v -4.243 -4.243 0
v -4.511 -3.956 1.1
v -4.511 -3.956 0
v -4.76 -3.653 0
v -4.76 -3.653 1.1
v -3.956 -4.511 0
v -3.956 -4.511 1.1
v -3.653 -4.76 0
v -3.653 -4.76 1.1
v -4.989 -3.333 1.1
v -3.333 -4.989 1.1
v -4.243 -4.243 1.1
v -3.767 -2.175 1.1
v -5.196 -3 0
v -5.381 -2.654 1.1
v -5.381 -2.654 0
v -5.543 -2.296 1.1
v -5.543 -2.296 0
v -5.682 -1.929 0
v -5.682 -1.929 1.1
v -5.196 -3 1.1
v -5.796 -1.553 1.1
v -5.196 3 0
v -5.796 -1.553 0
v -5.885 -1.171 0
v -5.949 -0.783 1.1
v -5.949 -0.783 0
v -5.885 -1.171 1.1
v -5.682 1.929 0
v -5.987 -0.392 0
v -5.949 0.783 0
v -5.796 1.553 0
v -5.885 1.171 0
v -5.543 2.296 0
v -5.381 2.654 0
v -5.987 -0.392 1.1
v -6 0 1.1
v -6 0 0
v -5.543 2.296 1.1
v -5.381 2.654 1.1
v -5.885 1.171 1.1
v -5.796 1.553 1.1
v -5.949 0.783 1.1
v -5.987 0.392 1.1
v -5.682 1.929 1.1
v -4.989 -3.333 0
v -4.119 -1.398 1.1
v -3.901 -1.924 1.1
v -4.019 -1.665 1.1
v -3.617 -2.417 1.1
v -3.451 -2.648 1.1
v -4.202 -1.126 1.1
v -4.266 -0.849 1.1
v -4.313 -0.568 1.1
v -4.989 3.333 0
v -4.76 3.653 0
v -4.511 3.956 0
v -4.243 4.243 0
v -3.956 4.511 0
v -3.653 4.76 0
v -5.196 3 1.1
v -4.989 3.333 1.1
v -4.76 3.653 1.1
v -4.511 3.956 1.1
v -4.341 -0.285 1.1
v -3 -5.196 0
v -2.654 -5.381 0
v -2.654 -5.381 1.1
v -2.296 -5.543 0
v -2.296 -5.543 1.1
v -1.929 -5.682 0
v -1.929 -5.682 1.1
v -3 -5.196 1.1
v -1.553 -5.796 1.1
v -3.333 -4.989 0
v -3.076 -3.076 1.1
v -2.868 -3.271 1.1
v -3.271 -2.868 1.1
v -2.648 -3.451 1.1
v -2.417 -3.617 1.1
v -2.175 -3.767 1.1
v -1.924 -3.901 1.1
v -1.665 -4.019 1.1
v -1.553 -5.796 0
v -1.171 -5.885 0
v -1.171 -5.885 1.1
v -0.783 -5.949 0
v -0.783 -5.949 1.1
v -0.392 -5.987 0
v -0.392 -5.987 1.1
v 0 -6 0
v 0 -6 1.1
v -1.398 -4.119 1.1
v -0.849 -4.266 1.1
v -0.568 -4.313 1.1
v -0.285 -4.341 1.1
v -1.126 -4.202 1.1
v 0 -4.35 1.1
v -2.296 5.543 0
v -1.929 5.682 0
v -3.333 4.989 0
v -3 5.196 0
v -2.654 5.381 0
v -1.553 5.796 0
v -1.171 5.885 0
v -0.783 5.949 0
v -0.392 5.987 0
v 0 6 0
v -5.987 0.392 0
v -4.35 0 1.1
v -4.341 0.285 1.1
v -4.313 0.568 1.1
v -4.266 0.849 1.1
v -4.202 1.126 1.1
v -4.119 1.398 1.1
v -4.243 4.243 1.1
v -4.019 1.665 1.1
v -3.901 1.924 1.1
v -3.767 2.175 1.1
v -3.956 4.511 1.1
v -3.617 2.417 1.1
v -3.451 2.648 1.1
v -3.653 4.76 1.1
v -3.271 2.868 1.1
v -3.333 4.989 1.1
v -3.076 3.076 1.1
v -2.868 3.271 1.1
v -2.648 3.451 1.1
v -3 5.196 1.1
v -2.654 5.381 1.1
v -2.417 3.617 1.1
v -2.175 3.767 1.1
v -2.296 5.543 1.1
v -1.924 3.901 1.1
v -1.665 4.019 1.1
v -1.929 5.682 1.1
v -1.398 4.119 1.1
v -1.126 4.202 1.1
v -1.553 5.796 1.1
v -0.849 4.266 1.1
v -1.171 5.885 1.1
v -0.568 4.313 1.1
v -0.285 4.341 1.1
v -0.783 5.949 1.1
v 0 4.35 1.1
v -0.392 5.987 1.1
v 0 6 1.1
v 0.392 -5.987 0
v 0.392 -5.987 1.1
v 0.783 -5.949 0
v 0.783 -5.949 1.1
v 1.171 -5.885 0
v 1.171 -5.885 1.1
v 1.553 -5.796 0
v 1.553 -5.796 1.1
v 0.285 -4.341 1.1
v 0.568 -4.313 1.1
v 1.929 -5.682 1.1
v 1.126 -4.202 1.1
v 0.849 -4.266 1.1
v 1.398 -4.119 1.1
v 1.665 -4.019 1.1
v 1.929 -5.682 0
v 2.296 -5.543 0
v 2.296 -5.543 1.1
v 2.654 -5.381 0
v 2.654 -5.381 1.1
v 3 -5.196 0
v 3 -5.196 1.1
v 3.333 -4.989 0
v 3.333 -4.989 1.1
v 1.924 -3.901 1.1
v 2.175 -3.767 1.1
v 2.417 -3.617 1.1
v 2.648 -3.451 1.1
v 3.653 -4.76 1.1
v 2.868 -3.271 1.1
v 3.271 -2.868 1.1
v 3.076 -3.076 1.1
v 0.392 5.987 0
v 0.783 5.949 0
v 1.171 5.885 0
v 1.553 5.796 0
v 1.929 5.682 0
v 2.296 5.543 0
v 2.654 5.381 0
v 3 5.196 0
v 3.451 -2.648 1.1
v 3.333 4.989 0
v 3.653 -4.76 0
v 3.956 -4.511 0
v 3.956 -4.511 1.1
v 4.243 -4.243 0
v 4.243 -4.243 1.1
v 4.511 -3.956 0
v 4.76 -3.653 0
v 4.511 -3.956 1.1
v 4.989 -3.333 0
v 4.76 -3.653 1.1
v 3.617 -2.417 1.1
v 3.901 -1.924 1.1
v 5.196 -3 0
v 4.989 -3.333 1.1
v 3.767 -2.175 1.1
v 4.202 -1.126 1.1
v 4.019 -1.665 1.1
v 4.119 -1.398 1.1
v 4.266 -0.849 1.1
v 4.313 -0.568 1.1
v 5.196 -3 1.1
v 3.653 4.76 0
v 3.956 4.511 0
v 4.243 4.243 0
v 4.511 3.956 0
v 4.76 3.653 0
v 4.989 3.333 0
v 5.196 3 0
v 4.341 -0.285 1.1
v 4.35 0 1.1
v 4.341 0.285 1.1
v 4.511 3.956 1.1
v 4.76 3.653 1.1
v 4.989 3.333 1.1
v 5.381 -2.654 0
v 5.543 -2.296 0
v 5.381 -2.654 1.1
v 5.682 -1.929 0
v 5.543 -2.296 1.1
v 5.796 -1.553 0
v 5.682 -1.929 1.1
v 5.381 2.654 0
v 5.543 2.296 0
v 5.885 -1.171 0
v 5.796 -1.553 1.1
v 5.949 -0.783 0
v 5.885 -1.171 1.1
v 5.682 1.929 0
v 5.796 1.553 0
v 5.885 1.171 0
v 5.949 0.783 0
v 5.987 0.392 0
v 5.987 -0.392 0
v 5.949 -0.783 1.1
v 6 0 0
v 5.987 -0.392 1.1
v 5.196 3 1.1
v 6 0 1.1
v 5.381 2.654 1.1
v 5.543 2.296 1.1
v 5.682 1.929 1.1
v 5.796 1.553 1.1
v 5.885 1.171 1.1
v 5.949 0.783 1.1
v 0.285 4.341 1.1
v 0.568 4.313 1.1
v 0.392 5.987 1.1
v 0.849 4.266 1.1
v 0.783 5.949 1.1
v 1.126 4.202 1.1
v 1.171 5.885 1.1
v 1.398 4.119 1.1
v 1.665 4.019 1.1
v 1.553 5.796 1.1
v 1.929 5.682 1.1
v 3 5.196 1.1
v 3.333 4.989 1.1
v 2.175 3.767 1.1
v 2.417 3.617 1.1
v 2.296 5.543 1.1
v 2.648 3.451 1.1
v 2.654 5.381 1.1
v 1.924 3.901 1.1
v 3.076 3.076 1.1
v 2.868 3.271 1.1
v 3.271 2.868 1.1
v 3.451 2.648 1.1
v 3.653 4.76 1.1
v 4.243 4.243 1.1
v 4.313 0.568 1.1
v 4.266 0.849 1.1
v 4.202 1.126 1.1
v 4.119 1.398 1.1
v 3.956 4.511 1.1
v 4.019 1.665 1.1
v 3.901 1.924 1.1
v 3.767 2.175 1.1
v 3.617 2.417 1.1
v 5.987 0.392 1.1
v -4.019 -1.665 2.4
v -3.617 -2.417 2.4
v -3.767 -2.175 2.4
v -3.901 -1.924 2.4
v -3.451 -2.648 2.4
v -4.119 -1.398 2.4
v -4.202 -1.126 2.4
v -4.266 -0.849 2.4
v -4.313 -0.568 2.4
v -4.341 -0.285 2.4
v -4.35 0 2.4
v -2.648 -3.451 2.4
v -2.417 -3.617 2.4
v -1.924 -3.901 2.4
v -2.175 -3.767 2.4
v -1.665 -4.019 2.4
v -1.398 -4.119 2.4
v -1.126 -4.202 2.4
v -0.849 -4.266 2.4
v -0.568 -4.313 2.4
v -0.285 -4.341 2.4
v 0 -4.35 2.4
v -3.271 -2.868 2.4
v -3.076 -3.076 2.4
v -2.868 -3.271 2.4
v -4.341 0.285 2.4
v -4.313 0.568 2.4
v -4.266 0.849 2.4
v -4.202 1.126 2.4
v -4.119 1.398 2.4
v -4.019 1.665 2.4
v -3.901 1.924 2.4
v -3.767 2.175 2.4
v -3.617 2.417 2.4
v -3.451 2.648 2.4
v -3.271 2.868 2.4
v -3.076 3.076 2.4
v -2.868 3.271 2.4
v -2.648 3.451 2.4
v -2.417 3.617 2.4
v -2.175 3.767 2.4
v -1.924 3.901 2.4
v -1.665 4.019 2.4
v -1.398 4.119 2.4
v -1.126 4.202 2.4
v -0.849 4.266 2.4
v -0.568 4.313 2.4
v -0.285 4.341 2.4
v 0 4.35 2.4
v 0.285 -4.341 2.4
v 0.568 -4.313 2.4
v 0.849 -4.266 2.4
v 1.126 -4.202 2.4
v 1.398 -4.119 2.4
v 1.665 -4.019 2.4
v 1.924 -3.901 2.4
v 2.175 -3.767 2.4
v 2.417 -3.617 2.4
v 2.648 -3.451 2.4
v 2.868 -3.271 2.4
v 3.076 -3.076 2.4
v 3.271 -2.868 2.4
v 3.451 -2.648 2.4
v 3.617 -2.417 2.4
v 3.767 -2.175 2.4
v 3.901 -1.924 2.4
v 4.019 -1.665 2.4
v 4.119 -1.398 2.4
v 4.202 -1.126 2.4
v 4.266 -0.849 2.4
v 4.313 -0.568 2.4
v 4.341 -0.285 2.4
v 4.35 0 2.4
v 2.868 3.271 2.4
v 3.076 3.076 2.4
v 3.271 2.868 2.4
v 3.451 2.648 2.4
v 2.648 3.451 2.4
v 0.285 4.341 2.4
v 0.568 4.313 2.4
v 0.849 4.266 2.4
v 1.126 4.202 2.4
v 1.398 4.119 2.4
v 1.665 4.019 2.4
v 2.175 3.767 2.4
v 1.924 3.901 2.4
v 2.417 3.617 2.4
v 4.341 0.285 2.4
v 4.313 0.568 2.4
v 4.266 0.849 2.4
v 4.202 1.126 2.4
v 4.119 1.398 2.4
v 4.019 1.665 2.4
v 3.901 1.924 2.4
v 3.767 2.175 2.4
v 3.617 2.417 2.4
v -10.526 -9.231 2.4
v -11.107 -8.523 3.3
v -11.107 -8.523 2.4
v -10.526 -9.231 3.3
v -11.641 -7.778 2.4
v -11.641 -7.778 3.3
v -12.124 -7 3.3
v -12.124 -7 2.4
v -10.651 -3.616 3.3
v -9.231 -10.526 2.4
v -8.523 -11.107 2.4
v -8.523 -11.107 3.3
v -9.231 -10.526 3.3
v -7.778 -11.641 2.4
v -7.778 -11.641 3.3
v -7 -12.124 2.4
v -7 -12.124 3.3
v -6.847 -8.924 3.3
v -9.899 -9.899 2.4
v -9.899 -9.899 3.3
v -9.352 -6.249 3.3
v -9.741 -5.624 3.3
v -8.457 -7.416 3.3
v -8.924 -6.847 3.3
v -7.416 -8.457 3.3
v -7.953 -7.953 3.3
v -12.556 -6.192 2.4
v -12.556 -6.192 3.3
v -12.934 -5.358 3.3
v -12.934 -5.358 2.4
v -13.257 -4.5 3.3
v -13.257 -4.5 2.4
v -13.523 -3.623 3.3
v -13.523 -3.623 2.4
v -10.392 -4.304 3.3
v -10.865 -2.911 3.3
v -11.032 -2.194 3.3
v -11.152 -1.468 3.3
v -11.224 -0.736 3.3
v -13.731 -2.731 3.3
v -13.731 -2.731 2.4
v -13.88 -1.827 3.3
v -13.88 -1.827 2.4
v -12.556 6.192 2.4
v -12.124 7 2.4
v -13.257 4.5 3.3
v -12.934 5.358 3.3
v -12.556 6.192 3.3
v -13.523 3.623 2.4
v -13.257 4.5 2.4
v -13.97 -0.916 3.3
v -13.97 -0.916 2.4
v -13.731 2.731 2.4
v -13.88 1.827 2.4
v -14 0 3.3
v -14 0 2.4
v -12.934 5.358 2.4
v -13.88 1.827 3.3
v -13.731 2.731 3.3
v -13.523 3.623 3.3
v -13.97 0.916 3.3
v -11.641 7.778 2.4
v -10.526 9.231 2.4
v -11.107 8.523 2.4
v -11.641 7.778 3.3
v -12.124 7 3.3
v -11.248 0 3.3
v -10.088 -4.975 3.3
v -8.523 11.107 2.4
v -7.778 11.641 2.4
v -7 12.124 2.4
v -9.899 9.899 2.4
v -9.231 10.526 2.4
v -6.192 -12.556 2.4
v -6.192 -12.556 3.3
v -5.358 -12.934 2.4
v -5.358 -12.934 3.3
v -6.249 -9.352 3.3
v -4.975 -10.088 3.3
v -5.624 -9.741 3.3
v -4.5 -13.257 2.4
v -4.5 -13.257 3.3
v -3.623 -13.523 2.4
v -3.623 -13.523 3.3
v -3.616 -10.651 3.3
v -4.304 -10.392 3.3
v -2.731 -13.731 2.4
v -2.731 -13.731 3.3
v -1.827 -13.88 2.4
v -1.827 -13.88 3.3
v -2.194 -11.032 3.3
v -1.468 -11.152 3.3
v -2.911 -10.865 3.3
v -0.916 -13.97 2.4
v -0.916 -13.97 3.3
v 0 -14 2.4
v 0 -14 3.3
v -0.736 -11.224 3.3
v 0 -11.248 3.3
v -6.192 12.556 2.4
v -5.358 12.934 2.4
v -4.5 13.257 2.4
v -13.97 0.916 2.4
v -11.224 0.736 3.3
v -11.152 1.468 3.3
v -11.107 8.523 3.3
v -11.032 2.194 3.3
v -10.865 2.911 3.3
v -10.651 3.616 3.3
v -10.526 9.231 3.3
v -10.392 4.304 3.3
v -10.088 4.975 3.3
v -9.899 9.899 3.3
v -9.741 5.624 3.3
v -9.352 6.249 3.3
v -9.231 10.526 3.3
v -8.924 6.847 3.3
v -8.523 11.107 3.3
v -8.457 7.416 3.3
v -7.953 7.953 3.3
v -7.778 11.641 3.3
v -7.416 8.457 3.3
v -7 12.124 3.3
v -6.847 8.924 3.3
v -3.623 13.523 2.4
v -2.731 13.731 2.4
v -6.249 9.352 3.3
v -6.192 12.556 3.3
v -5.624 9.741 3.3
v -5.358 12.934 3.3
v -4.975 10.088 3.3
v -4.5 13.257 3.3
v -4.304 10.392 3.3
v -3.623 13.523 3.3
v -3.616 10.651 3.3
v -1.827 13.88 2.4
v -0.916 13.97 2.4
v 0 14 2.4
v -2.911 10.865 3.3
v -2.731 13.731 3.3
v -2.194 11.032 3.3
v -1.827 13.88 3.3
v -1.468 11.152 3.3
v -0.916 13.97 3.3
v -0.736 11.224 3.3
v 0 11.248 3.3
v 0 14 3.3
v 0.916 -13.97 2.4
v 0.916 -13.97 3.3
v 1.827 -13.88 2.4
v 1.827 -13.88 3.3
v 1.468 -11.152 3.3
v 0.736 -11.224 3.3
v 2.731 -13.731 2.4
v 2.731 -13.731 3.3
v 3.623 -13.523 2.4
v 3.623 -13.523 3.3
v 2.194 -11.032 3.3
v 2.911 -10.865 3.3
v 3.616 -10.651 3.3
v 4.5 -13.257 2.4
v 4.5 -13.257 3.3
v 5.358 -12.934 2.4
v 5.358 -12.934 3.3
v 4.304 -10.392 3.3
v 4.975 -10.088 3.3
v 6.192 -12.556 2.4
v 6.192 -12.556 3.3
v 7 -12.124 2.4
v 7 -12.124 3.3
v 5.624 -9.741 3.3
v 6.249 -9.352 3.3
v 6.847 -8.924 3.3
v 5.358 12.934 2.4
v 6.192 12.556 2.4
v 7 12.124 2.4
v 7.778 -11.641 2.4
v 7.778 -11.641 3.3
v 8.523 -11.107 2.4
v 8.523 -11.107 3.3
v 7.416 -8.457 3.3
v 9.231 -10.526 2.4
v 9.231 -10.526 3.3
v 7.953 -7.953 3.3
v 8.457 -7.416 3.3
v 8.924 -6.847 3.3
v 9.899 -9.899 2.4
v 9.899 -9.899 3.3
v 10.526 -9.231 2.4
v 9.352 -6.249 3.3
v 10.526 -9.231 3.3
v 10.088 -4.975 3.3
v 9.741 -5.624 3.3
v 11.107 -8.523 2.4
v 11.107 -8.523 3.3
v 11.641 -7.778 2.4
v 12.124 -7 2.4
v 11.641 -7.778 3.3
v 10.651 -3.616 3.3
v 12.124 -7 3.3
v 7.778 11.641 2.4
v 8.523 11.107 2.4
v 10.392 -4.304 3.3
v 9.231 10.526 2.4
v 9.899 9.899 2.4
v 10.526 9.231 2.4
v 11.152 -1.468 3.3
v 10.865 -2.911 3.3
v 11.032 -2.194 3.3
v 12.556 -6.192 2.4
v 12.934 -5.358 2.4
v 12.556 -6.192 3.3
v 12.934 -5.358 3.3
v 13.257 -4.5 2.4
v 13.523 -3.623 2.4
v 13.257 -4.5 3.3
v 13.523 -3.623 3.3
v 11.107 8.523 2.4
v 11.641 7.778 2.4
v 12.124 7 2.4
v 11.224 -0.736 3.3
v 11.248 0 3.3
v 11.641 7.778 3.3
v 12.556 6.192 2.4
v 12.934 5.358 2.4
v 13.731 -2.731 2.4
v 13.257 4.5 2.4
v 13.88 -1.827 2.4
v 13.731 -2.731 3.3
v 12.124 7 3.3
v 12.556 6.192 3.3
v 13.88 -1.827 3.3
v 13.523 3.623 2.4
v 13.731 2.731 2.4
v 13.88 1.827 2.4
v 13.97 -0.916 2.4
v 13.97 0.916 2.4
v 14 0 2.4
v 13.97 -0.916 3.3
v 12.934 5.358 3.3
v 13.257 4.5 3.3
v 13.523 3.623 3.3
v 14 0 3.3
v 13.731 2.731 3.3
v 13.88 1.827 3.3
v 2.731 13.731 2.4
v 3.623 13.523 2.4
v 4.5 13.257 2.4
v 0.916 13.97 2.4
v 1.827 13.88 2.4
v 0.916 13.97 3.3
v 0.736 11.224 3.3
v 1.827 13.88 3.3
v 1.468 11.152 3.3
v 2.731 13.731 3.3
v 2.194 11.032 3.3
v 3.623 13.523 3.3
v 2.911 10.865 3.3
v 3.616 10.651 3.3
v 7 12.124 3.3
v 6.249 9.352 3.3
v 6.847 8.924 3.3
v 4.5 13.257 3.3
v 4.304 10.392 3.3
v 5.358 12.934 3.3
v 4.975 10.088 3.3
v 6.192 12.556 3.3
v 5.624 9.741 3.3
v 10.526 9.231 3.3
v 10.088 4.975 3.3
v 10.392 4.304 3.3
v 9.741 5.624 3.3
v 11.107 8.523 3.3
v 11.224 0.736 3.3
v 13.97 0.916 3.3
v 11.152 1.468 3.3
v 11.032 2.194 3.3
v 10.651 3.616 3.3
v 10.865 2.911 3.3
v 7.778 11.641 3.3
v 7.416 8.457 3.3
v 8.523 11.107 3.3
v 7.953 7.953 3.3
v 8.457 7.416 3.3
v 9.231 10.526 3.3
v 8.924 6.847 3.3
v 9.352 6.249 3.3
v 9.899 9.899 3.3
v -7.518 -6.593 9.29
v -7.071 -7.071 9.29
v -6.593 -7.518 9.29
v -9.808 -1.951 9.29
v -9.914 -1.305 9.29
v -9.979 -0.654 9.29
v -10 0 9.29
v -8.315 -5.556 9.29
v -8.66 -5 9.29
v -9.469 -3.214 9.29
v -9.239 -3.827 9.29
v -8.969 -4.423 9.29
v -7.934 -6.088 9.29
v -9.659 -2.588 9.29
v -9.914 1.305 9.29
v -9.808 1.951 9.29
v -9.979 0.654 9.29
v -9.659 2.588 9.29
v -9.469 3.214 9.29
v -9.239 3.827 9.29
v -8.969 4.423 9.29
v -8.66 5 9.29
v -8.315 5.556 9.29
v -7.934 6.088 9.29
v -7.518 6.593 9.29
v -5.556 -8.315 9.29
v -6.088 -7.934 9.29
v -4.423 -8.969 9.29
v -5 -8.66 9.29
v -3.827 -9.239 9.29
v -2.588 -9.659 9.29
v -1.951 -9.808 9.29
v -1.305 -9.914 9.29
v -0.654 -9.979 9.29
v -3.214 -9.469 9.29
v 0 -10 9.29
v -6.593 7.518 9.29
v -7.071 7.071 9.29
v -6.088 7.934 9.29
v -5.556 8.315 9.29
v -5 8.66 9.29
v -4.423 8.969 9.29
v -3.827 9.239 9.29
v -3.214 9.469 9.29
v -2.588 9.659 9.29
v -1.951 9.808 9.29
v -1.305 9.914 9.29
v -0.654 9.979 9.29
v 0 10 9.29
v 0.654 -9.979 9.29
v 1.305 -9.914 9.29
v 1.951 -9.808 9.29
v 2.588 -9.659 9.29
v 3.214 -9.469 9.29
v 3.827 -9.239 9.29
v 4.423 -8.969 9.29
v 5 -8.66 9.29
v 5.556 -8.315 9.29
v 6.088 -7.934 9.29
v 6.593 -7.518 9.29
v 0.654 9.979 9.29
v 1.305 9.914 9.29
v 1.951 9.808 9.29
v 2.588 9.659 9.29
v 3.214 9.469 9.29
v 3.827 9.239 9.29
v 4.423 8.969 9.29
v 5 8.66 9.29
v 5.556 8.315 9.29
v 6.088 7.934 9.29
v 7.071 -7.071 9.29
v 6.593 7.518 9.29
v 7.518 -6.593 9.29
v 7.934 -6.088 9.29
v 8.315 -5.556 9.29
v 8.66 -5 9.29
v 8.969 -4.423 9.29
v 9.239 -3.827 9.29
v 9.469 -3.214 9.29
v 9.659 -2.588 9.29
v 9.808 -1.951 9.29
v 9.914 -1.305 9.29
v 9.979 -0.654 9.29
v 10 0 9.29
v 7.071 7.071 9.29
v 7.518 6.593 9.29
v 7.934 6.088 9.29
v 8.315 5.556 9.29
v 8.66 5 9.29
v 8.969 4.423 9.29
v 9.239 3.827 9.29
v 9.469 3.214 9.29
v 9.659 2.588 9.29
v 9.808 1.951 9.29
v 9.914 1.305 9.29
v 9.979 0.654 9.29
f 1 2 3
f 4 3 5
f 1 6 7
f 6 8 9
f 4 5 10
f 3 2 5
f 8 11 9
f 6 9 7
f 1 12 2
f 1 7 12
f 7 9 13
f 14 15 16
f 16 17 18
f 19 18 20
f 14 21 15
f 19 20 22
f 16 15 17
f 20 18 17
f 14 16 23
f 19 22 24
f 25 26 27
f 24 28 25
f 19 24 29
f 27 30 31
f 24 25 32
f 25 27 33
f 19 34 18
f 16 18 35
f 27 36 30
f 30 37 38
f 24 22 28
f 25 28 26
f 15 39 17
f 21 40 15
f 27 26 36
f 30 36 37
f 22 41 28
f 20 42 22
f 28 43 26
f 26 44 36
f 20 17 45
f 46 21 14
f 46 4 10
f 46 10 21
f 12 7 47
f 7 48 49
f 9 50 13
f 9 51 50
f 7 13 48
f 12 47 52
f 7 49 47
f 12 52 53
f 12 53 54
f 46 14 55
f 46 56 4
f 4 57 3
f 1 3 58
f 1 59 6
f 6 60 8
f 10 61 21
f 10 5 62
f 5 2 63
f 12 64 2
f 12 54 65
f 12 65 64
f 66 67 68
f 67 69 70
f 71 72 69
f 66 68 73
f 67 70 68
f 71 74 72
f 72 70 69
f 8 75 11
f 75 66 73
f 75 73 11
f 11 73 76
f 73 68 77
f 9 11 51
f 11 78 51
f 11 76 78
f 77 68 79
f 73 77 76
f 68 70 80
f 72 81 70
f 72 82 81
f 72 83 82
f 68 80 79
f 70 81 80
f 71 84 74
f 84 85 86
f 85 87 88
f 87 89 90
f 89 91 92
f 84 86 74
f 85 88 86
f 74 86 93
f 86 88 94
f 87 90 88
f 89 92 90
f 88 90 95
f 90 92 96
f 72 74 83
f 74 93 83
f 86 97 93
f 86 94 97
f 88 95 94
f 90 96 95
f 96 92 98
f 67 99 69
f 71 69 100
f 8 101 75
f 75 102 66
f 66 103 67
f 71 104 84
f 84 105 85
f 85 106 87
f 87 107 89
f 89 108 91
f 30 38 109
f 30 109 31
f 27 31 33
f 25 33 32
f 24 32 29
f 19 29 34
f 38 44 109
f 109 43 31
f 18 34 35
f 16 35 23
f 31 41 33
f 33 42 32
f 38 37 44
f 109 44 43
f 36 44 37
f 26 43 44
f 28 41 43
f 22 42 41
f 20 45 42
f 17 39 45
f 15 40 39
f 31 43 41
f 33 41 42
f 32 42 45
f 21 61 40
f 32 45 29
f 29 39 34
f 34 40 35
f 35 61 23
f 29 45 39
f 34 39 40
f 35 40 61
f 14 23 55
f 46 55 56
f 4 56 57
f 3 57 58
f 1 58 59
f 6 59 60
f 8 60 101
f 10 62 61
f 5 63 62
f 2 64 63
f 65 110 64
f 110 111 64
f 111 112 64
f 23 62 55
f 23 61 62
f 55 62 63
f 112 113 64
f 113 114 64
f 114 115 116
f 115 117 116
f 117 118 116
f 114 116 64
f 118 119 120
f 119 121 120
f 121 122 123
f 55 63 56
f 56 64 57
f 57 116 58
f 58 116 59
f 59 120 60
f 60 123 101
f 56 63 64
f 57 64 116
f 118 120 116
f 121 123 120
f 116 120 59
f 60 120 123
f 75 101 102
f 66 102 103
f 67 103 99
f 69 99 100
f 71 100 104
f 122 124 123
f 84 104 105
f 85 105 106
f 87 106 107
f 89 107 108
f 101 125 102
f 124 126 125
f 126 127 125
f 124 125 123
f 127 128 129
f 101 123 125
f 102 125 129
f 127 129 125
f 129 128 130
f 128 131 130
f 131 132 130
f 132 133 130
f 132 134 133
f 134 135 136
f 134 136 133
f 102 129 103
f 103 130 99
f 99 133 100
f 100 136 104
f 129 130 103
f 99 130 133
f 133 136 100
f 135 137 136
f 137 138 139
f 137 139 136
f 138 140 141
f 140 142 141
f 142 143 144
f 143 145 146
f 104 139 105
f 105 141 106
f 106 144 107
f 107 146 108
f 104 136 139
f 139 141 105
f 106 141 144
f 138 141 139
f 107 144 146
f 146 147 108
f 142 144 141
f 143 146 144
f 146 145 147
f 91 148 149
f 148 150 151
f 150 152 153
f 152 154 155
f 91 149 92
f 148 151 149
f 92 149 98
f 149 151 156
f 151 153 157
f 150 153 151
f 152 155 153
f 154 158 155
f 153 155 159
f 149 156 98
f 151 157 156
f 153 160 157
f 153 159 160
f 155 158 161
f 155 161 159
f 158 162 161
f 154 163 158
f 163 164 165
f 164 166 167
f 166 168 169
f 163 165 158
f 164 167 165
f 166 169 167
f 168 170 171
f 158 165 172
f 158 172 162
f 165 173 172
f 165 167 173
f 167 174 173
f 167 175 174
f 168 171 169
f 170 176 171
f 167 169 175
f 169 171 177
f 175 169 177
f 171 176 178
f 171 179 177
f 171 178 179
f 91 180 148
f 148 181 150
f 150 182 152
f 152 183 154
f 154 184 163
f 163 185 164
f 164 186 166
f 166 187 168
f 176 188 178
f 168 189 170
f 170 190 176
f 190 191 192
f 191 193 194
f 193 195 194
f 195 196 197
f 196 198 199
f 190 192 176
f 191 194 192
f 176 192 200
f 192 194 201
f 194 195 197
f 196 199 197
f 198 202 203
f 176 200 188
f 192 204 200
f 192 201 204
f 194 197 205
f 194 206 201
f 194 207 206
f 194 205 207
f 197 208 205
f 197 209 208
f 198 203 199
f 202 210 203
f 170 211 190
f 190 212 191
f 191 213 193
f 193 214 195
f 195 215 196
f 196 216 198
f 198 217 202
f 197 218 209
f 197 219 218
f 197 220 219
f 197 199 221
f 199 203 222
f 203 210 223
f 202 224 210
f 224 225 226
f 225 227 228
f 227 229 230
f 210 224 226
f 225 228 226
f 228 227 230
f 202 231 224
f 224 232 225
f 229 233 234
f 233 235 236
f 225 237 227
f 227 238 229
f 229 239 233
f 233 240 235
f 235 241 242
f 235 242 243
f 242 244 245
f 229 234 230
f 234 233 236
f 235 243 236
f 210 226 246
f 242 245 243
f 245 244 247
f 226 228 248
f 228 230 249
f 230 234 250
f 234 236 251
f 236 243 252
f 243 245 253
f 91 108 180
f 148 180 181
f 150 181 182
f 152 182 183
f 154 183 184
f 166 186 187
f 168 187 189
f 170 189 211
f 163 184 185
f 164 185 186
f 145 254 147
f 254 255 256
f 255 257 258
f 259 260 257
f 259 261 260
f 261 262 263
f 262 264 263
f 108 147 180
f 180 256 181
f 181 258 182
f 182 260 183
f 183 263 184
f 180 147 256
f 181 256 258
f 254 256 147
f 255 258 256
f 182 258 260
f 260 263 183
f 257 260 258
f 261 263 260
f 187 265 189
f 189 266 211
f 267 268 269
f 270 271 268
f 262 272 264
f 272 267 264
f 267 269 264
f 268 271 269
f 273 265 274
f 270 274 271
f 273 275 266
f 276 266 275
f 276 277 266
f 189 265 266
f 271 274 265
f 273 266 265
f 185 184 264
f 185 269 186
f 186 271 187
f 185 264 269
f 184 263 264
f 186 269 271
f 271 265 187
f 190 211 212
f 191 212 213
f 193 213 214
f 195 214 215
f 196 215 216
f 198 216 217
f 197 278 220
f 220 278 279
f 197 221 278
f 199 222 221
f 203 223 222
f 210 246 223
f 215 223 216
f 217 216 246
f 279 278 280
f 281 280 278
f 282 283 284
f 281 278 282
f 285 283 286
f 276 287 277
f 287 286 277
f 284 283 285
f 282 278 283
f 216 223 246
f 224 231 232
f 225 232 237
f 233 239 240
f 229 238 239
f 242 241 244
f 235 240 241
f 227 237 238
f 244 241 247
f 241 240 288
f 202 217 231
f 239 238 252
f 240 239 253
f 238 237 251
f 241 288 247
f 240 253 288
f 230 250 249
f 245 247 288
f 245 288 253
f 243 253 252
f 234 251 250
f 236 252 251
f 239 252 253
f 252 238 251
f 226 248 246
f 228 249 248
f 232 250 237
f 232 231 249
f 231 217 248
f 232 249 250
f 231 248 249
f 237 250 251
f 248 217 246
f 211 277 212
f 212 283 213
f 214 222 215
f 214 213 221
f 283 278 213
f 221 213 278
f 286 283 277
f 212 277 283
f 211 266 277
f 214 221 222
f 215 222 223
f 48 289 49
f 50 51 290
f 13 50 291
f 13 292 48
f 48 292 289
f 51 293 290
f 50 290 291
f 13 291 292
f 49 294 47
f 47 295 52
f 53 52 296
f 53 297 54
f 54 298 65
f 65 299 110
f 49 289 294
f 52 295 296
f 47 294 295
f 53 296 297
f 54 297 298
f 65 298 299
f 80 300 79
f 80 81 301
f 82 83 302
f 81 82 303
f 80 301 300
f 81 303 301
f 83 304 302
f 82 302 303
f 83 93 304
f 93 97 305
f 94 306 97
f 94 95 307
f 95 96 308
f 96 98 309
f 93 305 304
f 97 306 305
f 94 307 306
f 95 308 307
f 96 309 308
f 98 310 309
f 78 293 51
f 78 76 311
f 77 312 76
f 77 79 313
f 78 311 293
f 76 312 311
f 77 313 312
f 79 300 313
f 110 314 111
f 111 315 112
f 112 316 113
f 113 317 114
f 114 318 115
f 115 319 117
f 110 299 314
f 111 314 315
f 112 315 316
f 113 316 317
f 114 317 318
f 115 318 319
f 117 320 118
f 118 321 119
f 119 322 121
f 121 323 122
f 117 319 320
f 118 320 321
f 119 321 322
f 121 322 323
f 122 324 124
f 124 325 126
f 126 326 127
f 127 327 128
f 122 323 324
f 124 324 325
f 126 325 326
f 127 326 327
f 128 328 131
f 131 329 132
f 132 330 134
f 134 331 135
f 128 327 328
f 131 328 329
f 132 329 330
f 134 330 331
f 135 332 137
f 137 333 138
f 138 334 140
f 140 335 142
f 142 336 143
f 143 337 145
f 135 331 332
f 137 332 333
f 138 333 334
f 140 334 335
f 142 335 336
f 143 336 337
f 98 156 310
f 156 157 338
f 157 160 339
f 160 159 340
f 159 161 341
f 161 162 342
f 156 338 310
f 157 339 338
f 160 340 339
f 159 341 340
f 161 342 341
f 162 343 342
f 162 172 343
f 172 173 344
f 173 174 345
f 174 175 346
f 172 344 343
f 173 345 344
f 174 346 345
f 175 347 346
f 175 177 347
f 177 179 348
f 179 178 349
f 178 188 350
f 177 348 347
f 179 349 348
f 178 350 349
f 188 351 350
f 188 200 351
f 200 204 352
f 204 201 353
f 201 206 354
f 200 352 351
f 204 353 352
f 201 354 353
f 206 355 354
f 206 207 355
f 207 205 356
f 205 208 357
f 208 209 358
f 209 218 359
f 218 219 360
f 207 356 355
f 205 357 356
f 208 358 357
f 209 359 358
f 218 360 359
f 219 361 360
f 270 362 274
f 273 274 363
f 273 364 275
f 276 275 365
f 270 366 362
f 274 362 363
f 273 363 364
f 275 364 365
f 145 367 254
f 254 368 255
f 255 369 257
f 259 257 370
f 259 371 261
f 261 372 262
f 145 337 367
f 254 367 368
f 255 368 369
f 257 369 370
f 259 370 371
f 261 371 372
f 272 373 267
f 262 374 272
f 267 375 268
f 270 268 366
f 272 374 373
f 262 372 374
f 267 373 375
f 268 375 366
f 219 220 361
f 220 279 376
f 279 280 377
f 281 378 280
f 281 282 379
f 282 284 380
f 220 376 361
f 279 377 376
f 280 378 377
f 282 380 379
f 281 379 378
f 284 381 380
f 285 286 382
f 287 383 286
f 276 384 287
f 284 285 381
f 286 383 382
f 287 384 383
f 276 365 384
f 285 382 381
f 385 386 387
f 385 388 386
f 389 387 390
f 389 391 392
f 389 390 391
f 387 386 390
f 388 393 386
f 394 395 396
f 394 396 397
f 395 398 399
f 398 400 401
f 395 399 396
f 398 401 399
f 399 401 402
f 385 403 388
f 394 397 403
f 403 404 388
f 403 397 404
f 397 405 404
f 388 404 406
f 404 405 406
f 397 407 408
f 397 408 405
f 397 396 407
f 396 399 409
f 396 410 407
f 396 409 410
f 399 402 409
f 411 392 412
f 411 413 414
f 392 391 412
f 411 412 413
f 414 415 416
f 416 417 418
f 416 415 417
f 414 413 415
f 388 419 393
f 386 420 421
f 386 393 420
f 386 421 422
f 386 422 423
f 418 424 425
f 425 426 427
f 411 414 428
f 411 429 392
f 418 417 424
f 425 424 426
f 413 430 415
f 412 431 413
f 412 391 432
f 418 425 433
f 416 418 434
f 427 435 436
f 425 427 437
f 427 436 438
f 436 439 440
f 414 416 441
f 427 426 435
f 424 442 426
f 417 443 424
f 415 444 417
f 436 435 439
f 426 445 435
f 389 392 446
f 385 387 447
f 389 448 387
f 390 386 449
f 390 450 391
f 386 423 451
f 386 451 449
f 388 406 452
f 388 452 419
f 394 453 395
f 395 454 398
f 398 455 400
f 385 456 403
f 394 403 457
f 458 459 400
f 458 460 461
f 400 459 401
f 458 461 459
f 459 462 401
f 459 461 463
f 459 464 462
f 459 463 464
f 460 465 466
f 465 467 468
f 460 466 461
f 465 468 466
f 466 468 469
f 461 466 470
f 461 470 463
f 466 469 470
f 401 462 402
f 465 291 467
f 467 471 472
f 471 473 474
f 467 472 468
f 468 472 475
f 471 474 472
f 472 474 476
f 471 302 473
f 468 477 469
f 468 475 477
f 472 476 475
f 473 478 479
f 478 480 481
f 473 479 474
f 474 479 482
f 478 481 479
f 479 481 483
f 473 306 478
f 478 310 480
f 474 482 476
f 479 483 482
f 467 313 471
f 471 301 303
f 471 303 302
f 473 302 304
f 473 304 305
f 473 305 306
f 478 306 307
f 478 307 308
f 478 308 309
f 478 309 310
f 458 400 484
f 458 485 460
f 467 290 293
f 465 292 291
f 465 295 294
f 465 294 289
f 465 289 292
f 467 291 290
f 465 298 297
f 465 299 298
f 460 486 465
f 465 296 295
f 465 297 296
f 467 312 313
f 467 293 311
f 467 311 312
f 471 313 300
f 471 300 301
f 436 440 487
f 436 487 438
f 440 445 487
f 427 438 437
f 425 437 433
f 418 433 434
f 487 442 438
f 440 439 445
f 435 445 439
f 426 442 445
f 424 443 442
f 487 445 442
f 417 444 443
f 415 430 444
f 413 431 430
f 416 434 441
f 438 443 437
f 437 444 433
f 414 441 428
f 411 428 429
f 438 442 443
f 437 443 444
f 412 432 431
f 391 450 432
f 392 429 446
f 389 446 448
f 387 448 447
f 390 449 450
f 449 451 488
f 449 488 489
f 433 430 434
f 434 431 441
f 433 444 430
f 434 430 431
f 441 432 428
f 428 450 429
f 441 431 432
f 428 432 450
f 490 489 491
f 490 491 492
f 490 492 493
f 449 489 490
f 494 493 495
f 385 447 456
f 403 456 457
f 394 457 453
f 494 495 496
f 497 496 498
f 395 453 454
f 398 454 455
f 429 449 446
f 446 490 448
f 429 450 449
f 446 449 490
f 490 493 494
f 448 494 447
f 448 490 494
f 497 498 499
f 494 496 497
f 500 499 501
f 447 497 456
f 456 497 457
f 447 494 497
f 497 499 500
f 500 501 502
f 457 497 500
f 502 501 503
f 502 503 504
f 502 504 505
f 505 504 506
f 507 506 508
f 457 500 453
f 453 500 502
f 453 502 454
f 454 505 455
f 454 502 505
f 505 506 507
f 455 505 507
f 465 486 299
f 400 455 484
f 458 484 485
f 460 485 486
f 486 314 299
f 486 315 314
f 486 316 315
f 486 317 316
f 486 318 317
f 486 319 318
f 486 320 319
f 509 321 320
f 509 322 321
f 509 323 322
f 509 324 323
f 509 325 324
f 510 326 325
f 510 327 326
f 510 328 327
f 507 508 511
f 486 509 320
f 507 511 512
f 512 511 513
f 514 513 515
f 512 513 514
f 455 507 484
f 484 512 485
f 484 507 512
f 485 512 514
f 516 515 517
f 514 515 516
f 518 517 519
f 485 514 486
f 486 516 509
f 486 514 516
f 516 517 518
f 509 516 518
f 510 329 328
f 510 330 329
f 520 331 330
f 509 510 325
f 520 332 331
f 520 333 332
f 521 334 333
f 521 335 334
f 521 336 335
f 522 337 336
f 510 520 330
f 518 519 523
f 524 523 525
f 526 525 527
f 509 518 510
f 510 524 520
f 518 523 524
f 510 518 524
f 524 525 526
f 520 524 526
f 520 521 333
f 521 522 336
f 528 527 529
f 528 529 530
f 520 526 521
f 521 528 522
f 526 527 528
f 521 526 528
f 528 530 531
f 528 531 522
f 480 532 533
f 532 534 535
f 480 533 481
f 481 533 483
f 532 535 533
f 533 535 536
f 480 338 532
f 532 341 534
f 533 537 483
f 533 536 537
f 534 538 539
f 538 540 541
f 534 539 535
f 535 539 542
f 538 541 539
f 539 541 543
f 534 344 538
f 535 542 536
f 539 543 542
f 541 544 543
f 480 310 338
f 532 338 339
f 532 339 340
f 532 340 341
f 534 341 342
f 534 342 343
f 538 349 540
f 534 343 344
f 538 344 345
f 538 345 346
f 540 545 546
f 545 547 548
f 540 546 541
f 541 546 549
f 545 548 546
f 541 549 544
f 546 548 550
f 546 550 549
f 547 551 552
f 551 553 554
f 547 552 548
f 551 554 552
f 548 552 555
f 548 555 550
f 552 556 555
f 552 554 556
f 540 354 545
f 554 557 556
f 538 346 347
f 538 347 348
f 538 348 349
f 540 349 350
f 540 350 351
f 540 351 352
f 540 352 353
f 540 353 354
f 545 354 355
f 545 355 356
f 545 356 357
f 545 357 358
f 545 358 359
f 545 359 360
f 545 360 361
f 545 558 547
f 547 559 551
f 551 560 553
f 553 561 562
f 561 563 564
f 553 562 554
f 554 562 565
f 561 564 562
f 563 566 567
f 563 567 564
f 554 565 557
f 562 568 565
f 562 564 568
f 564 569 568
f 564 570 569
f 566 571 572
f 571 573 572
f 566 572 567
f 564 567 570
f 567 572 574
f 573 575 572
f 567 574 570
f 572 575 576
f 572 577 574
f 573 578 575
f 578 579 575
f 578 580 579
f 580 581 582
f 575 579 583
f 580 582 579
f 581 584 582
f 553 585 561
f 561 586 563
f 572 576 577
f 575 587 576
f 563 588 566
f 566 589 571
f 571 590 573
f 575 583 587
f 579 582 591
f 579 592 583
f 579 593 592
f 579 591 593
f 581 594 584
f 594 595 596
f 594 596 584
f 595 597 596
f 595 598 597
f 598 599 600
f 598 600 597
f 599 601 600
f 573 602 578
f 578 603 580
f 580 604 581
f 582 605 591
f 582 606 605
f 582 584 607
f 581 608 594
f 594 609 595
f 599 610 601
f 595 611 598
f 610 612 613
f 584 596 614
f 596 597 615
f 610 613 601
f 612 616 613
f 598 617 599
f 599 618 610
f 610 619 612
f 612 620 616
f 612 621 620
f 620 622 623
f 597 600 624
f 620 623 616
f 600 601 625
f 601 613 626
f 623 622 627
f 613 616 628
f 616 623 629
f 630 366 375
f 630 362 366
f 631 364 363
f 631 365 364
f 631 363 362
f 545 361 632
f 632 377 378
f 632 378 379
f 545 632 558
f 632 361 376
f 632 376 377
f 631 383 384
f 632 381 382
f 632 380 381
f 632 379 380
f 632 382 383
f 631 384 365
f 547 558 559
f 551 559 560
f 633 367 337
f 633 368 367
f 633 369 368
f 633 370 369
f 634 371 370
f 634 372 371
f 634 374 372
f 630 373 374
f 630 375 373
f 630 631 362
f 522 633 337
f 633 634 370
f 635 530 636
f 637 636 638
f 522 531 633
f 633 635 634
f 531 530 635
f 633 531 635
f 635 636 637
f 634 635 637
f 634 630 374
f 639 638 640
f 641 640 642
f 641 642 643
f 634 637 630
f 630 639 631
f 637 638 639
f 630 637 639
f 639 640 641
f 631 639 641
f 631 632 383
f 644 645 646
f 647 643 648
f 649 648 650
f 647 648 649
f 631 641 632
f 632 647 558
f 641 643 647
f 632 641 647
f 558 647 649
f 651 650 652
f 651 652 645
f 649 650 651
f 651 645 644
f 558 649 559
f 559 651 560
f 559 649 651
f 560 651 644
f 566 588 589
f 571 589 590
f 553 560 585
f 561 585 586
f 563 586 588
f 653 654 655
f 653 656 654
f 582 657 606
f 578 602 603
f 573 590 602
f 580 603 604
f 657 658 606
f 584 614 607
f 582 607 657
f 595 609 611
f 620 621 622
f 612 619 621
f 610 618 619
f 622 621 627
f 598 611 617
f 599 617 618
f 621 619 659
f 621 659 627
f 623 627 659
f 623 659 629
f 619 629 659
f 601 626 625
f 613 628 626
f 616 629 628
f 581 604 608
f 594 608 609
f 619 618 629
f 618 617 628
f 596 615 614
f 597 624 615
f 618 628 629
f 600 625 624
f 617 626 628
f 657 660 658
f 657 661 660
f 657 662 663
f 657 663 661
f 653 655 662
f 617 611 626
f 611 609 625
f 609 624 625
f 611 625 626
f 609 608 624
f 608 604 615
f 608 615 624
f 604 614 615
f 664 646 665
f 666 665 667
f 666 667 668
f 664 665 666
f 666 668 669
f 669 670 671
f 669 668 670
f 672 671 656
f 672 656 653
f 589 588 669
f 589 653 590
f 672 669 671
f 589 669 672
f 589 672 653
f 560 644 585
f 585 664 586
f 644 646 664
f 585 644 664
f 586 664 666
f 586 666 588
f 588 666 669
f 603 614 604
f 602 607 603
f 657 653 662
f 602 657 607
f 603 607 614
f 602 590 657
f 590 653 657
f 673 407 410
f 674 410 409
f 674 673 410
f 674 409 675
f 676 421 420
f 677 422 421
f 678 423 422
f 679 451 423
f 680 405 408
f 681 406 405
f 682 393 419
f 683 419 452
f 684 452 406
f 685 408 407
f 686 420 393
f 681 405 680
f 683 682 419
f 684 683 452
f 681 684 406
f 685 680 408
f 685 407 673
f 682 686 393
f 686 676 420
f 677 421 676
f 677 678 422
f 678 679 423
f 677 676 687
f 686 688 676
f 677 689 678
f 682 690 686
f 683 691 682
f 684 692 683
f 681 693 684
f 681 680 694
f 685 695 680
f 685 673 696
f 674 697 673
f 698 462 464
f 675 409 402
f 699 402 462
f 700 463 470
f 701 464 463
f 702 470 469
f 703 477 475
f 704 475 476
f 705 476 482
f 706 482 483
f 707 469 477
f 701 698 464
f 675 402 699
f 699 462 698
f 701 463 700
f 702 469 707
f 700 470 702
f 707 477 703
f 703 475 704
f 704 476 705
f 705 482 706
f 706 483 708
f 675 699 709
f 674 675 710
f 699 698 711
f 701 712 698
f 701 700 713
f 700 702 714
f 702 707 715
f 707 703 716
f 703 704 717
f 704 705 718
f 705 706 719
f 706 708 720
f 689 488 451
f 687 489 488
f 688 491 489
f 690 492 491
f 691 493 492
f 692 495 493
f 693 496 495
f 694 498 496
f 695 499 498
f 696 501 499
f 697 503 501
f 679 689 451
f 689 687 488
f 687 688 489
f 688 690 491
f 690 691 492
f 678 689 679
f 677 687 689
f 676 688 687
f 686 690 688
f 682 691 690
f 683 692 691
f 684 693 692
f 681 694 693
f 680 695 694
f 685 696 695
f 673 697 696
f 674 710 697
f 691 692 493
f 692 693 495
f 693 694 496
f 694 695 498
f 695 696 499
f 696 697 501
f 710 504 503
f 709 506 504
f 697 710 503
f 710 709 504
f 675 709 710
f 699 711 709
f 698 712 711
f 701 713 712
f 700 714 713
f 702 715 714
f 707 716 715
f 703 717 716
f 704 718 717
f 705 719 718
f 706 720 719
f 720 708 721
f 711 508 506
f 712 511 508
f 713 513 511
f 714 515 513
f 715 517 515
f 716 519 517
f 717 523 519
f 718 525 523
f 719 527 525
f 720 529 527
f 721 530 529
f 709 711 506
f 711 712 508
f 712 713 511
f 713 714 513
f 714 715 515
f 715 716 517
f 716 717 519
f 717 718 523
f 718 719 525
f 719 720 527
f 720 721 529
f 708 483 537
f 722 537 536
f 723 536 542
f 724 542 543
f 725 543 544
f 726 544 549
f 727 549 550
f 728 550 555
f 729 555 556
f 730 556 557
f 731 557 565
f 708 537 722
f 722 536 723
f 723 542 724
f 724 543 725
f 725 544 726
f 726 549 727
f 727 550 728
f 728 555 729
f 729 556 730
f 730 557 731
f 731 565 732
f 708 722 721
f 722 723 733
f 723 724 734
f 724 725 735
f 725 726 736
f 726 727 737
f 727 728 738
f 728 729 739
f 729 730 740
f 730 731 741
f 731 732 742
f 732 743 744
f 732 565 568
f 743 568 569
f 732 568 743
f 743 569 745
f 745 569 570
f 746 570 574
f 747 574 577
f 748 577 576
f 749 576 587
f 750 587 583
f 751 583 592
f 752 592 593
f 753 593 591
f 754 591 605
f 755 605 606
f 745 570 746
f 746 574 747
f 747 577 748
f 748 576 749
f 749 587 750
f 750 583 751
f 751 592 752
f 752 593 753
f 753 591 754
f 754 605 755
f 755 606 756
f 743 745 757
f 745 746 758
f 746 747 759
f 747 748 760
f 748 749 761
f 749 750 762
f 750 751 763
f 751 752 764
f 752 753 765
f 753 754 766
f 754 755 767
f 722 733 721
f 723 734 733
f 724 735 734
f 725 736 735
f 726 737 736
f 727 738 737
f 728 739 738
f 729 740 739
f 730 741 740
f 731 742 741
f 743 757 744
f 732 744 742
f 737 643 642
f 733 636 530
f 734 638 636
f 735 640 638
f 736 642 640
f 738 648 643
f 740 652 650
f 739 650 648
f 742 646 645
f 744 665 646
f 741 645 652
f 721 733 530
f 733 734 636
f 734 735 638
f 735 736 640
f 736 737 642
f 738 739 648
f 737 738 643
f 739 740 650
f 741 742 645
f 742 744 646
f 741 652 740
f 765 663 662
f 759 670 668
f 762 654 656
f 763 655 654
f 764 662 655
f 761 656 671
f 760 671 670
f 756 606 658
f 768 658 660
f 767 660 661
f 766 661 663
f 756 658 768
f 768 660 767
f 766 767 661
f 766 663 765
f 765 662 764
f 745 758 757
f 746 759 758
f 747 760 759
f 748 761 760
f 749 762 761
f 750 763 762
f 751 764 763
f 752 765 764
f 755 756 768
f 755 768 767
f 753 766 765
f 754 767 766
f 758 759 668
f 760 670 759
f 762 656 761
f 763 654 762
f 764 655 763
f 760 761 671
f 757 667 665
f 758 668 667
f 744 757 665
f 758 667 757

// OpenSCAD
// file: params.scad
// =====================================================================
//  Boldfit 2.2 L Gallon bottle – replacement cap system
//  SHARED PARAMETERS  (edit THIS file only; every design reads from it)
// =====================================================================
//
//  !!!  The neck numbers below are PLACEHOLDER GUESSES for a generic   !!!
//  !!!  Chinese 2.2 L gym jug.  Replace them with caliper readings     !!!
//  !!!  from the real bottle before printing a final cap.              !!!
//  See ../README.md  ->  "How to measure the neck".
//
// All dimensions in millimetres.

// ---------- BOTTLE NECK (measure these) ----------
neck_major_d   = 60.0;   // outside diameter ACROSS the thread crests
neck_minor_d   = 56.0;   // outside diameter at thread ROOT (bare neck wall)
mouth_id       = 50.0;   // inside diameter of the opening
neck_height    = 14.0;   // top lip  -> top of the shoulder / collar ring
thread_pitch   = 6.0;    // crest-to-crest spacing measured ALONG the axis
thread_starts  = 2;      // 1 = single start, 2 = two parallel threads (count where threads begin at the lip)
thread_turns   = 1.25;   // how many times ONE thread goes round the neck
thread_start_z = 2.0;    // distance from the top lip down to where the thread begins
thread_crest_w = 1.6;    // flat width of the thread crest (axial)
thread_root_w  = 3.6;    // width of the thread at its root (axial)

// ---------- FIT / PRINTER TUNING ----------
radial_clear   = 0.30;   // extra radius in the cap bore.  FDM 0.4 nozzle: 0.25-0.40
axial_clear    = 0.25;   // extra gap each side of the thread flank
wall           = 2.4;    // cap side wall (6 perimeters @ 0.4 mm)
top_t          = 3.0;    // cap top thickness
gasket_t       = 2.0;    // TPU / silicone gasket thickness
gasket_pocket  = 0.8;    // SHALLOW locating pocket – open, wipeable, gasket lifts out
skirt_extra    = 1.5;    // how far the skirt reaches below the thread
$fn            = 96;    // circular resolution (96 = 2 mm facets on a 60 mm cap, plenty for FDM)

// ---------- DERIVED (do not edit) ----------
thread_h       = (neck_major_d - neck_minor_d) / 2;            // radial height of the thread
thread_len     = thread_pitch * thread_starts * thread_turns;  // axial length ONE start covers
cap_bore_d     = neck_major_d + 2 * radial_clear;
cap_od         = cap_bore_d + 2 * wall;
skirt_h        = thread_start_z + thread_len + skirt_extra;
// file: threads.scad
// =====================================================================
//  threads.scad  –  helical thread sweep + bottle-neck model
//  Pure OpenSCAD, no external libraries needed.
// =====================================================================
include <params.scad>

// A right-hand helical thread of trapezoidal section.
//   r_root   : radius where the thread meets the core
//   r_crest  : radius of the crest
//   z_top    : z of the THREAD CENTRE at its upper end (near the lip)
//   z_bottom : z of the thread centre at its lower end
//   starts   : number of starts (spaced 360/starts apart)
module helix_thread(r_root, r_crest, pitch, starts, z_top, z_bottom,
                    crest_w, root_w, steps_per_turn = 96, overlap = 0.5) {
    lead  = pitch * starts;
    turns = (z_top - z_bottom) / lead;
    n     = max(2, ceil(turns * steps_per_turn));
    ri    = r_root - overlap;                    // bury the root inside the core
    for (s = [0 : starts - 1]) {
        a0 = s * 360 / starts;
        pts = [ for (i = [0 : n])
                let (a = i * 360 * turns / n, z = z_bottom + a / 360 * lead,
                     c = cos(a + a0), sn = sin(a + a0))
                each [ [ri * c,      ri * sn,      z - root_w  / 2],
                       [r_crest * c, r_crest * sn, z - crest_w / 2],
                       [r_crest * c, r_crest * sn, z + crest_w / 2],
                       [ri * c,      ri * sn,      z + root_w  / 2] ] ];
        // side quads are split into triangles: the helix makes them non-planar
        faces = concat(
            [[3, 2, 1, 0]],
            [ for (i = [0 : n - 1], j = [0 : 3])
                let (b = 4 * i, k = (j + 1) % 4) each [[b + k, b + k + 4, b + j + 4], [b + k, b + j + 4, b + j]] ],
            [[4 * n, 4 * n + 1, 4 * n + 2, 4 * n + 3]] );
        polyhedron(points = pts, faces = faces, convexity = 10);
    }
}

// The bottle neck in its natural frame: lip (top rim) at z = 0, bottle below.
//   clear_r / clear_z : grow the neck radially / axially – used when this
//                       model is SUBTRACTED from a cap to create the female thread.
//   thread_extend     : extra thread length BELOW the real thread so the groove
//                       in the cap runs all the way out of the skirt.
//   extra_core        : extend the core cylinder (through the cap's open end)
module neck(clear_r = 0, clear_z = 0, thread_extend = 0, extra_core = 0, show_bore = false) {
    rmin = neck_minor_d / 2 + clear_r;
    rmaj = neck_major_d / 2 + clear_r;
    z_top    = -thread_start_z - thread_crest_w / 2;
    z_bottom = z_top - thread_len - thread_extend;
    difference() {
        union() {
            // core
            translate([0, 0, -neck_height - extra_core])
                cylinder(r = rmin, h = neck_height + extra_core);
            // thread
            helix_thread(rmin, rmaj, thread_pitch, thread_starts, z_top, z_bottom,
                         thread_crest_w + 2 * clear_z, thread_root_w + 2 * clear_z);
        }
        if (show_bore)
            translate([0, 0, -neck_height - extra_core - 1])
                cylinder(d = mouth_id, h = neck_height + extra_core + 2);
    }
}

// Reference neck (what we THINK the bottle looks like) – render this to sanity
// check your measurements against the real bottle.
module neck_reference() {
    neck(show_bore = true);
    // shoulder/collar hint
    translate([0, 0, -neck_height - 3]) cylinder(d = neck_major_d + 14, h = 3);
}
// file: 04_port_common.scad
// Shared numbers for the PORT cap (main cap, plug, gasket)
head_d         = 42.0;   // plug head diameter
head_h         = 5.0;    // head thickness above the gasket
head_sink      = 1.5;    // head counterbore depth in the main cap (gasket lives here)
head_clear     = 0.5;    // radial clearance head / counterbore
port_gasket_t  = 1.5;

port_minor_d   = 30.0;   // male plug thread root diameter
port_major_d   = 33.0;   // male plug thread crest diameter
port_pitch     = 3.0;
port_starts    = 2;      // 2-start: a quarter turn opens it
port_turns     = 1.0;
port_crest_w   = 0.8;
port_root_w    = 1.9;
port_thread_h  = (port_major_d - port_minor_d) / 2;
port_tube_wall = 2.4;
port_tube_od   = port_major_d + 2 * radial_clear + 2 * port_tube_wall;
port_len       = port_pitch * port_starts * port_turns;        // axial length one start covers
port_tube_h    = head_sink + 1.5 + port_len + 2.0 - top_t;     // tube below the cap ceiling
port_stem_len  = 1.5 + port_len + 2.0;                         // plug stem below the head

// Male thread of the plug in the plug's natural frame: head underside at z = 0,
// threaded stem pointing +z.  Thread starts 1.5 mm from the head.
module port_male_thread(clear_r = 0, clear_z = 0, extend = 0) {
    rmin = port_minor_d / 2 + clear_r;
    rmaj = port_major_d / 2 + clear_r;
    z_bottom = 1.5 + port_crest_w / 2;             // near the head
    z_top    = z_bottom + port_len + extend;       // towards the stem tip
    union() {
        cylinder(r = rmin, h = z_top + 1);
        helix_thread(rmin, rmaj, port_pitch, port_starts, z_top, z_bottom,
                     port_crest_w + 2 * clear_z, port_root_w + 2 * clear_z);
    }
}
// file: 03_flip_common.scad
// Shared numbers + hinge/latch modules for the FLIP cap (base and lid)
spout_d      = 22;      // drinking hole diameter
spout_off    = 10;      // hole centre offset from cap centre (towards +x, away from hinge)
spout_boss_h = 2.5;     // extra ring under the ceiling so the plug has a 5 mm sealing land
pin_hole_d   = 2.0;     // clearance hole for a 1.75 mm filament pin
ear_w        = 4;       // hinge ear thickness
ear_gap      = 12.6;    // gap between ears (lid knuckle 12 mm + clearance)
ear_r        = 4;       // ear radius around the pin
hinge_out    = 3.0;     // pin axis distance outside the skirt wall
latch_w      = 12;
latch_nub    = 1.0;     // how far the latch nub protrudes beyond the skirt (snap depth 0.7)
nub_top_z    = 1.5;     // (base frame) where the nub ramp starts at the wall
nub_bot_z    = 4.0;     // (base frame) flat bearing face of the nub
lid_t        = 3.0;

module hinge_ears() {
    for (s = [-1, 1])
        translate([-(cap_od / 2 + hinge_out), s * (ear_gap / 2 + ear_w / 2), 0])
            hull() {
                translate([0, 0, ear_r]) rotate([90, 0, 0]) cylinder(r = ear_r, h = ear_w, center = true);
                translate([hinge_out + 1.5, 0, ear_r]) cube([3, ear_w, 2 * ear_r], center = true);
            }
}
// nub: flat bottom face (bearing), ramped top face (lead-in for closing)
module latch_nub() {
    R = cap_od / 2;
    hull() {
        translate([R - 0.6, -latch_w / 2, nub_top_z]) cube([0.6, latch_w, nub_bot_z - nub_top_z]);
        translate([R + latch_nub - 0.3, -latch_w / 2 + 1, nub_bot_z - 0.8]) cube([0.3, latch_w - 2, 0.8]);
    }
}
// file: cap_lib.scad
// =====================================================================
//  cap_lib.scad – shared cap body (female thread, gasket seat, grip, loop)
//  Every cap is modelled PRINT-READY: outer top face on z = 0 (the bed),
//  open skirt pointing UP.  No supports needed.
//
//  Hygiene rules baked in:
//   • thread groove runs OUT of the skirt – no dead-end helix to trap water
//   • gasket seat is a 0.8 mm open pocket with chamfered edge – gasket
//     lifts out, nothing hides behind it
//   • every inside corner is chamfered, outer grip is scallops (wipeable)
// =====================================================================
include <threads.scad>

z_lip = top_t + gasket_t;            // where the bottle lip rests (gasket uncompressed)
cap_h = z_lip + skirt_h;             // total cap height

// ---- grip ------------------------------------------------------------
grip_count   = 24;
scallop_d    = 5.0;        // scallop cutter diameter
scallop_bite = 0.9;        // how deep the scallop cuts into the wall

module grip_outer_solid(h = cap_h) {
    difference() {
        cylinder(d = cap_od, h = h);
        for (i = [0 : grip_count - 1]) rotate(i * 360 / grip_count)
            translate([cap_od / 2 + scallop_d / 2 - scallop_bite, 0, 1.6])
                cylinder(d = scallop_d, h = h);
        // bed-side edge chamfer for a clean first layer and a soft rim
        rotate_extrude() translate([cap_od / 2, 0]) rotate(45) square([1.7, 1.7], center = true);
        // skirt-mouth outer chamfer
        rotate_extrude() translate([cap_od / 2, h]) rotate(45) square([1.2, 1.2], center = true);
    }
}

// ---- the female thread + gasket seat, as a NEGATIVE ------------------
module cap_negative() {
    // bottle neck with clearances, flipped so the lip sits at z_lip
    translate([0, 0, z_lip]) rotate([180, 0, 0])
        neck(clear_r = radial_clear, clear_z = axial_clear,
             thread_extend = skirt_extra + 2 * thread_pitch, extra_core = 30);
    // shallow gasket seat with a 45° chamfered rim (no sharp inside corner)
    translate([0, 0, top_t]) cylinder(d = neck_minor_d + 1.2, h = gasket_pocket + 0.01);
    translate([0, 0, top_t + gasket_pocket - 0.01])
        cylinder(d1 = neck_minor_d + 1.2, d2 = neck_minor_d + 1.2 + 2 * gasket_pocket, h = gasket_pocket);
    // chamfer the ledge-to-bore corner
    translate([0, 0, z_lip - 1.0]) cylinder(d1 = cap_bore_d - 2.0, d2 = cap_bore_d, h = 1.01);
    // lead-in chamfer at the skirt mouth so the cap finds the thread easily
    translate([0, 0, cap_h - 1.2]) cylinder(d1 = cap_bore_d, d2 = cap_bore_d + 2.4, h = 1.21);
}

// ---- complete plain cap body ----------------------------------------
module cap_body() {
    difference() {
        grip_outer_solid();
        cap_negative();
    }
}

// ---- D-loop for the Boldfit strap / a carabiner ---------------------
loop_w  = 16;    // inside width
loop_t  = 4;     // bar thickness
loop_ht = 8;     // height (lies flat on the bed, beside the cap)

module d_loop() {
    translate([cap_od / 2 - 1.5, 0, 0]) difference() {
        hull() {
            translate([0, -(loop_w / 2 + loop_t), 0]) cube([1, loop_w + 2 * loop_t, loop_ht]);
            translate([loop_w / 2 + loop_t, 0, 0]) cylinder(d = loop_w + 2 * loop_t, h = loop_ht);
        }
        hull() {
            translate([loop_t, -loop_w / 2, -1]) cube([1, loop_w, loop_ht + 2]);
            translate([loop_w / 2 + loop_t, 0, -1]) cylinder(d = loop_w, h = loop_ht + 2);
        }
    }
}
// main file
// =====================================================================
//  03c  "FLIP"  – TPU PLUG SEAL  (print in TPU 95A, 100 % infill, slow)
//  Flange sits in the lid's underside recess, the tapered plug squeezes into
//  the base's drinking hole, the stem+button pull through the lid keyhole and
//  hold it in place.  Pull the button to remove it for washing.
//  Print button-down (as modelled).  Tuning: flip_plug_squeeze in parts.scad
// =====================================================================
include <parts.scad>
flip_seal();
